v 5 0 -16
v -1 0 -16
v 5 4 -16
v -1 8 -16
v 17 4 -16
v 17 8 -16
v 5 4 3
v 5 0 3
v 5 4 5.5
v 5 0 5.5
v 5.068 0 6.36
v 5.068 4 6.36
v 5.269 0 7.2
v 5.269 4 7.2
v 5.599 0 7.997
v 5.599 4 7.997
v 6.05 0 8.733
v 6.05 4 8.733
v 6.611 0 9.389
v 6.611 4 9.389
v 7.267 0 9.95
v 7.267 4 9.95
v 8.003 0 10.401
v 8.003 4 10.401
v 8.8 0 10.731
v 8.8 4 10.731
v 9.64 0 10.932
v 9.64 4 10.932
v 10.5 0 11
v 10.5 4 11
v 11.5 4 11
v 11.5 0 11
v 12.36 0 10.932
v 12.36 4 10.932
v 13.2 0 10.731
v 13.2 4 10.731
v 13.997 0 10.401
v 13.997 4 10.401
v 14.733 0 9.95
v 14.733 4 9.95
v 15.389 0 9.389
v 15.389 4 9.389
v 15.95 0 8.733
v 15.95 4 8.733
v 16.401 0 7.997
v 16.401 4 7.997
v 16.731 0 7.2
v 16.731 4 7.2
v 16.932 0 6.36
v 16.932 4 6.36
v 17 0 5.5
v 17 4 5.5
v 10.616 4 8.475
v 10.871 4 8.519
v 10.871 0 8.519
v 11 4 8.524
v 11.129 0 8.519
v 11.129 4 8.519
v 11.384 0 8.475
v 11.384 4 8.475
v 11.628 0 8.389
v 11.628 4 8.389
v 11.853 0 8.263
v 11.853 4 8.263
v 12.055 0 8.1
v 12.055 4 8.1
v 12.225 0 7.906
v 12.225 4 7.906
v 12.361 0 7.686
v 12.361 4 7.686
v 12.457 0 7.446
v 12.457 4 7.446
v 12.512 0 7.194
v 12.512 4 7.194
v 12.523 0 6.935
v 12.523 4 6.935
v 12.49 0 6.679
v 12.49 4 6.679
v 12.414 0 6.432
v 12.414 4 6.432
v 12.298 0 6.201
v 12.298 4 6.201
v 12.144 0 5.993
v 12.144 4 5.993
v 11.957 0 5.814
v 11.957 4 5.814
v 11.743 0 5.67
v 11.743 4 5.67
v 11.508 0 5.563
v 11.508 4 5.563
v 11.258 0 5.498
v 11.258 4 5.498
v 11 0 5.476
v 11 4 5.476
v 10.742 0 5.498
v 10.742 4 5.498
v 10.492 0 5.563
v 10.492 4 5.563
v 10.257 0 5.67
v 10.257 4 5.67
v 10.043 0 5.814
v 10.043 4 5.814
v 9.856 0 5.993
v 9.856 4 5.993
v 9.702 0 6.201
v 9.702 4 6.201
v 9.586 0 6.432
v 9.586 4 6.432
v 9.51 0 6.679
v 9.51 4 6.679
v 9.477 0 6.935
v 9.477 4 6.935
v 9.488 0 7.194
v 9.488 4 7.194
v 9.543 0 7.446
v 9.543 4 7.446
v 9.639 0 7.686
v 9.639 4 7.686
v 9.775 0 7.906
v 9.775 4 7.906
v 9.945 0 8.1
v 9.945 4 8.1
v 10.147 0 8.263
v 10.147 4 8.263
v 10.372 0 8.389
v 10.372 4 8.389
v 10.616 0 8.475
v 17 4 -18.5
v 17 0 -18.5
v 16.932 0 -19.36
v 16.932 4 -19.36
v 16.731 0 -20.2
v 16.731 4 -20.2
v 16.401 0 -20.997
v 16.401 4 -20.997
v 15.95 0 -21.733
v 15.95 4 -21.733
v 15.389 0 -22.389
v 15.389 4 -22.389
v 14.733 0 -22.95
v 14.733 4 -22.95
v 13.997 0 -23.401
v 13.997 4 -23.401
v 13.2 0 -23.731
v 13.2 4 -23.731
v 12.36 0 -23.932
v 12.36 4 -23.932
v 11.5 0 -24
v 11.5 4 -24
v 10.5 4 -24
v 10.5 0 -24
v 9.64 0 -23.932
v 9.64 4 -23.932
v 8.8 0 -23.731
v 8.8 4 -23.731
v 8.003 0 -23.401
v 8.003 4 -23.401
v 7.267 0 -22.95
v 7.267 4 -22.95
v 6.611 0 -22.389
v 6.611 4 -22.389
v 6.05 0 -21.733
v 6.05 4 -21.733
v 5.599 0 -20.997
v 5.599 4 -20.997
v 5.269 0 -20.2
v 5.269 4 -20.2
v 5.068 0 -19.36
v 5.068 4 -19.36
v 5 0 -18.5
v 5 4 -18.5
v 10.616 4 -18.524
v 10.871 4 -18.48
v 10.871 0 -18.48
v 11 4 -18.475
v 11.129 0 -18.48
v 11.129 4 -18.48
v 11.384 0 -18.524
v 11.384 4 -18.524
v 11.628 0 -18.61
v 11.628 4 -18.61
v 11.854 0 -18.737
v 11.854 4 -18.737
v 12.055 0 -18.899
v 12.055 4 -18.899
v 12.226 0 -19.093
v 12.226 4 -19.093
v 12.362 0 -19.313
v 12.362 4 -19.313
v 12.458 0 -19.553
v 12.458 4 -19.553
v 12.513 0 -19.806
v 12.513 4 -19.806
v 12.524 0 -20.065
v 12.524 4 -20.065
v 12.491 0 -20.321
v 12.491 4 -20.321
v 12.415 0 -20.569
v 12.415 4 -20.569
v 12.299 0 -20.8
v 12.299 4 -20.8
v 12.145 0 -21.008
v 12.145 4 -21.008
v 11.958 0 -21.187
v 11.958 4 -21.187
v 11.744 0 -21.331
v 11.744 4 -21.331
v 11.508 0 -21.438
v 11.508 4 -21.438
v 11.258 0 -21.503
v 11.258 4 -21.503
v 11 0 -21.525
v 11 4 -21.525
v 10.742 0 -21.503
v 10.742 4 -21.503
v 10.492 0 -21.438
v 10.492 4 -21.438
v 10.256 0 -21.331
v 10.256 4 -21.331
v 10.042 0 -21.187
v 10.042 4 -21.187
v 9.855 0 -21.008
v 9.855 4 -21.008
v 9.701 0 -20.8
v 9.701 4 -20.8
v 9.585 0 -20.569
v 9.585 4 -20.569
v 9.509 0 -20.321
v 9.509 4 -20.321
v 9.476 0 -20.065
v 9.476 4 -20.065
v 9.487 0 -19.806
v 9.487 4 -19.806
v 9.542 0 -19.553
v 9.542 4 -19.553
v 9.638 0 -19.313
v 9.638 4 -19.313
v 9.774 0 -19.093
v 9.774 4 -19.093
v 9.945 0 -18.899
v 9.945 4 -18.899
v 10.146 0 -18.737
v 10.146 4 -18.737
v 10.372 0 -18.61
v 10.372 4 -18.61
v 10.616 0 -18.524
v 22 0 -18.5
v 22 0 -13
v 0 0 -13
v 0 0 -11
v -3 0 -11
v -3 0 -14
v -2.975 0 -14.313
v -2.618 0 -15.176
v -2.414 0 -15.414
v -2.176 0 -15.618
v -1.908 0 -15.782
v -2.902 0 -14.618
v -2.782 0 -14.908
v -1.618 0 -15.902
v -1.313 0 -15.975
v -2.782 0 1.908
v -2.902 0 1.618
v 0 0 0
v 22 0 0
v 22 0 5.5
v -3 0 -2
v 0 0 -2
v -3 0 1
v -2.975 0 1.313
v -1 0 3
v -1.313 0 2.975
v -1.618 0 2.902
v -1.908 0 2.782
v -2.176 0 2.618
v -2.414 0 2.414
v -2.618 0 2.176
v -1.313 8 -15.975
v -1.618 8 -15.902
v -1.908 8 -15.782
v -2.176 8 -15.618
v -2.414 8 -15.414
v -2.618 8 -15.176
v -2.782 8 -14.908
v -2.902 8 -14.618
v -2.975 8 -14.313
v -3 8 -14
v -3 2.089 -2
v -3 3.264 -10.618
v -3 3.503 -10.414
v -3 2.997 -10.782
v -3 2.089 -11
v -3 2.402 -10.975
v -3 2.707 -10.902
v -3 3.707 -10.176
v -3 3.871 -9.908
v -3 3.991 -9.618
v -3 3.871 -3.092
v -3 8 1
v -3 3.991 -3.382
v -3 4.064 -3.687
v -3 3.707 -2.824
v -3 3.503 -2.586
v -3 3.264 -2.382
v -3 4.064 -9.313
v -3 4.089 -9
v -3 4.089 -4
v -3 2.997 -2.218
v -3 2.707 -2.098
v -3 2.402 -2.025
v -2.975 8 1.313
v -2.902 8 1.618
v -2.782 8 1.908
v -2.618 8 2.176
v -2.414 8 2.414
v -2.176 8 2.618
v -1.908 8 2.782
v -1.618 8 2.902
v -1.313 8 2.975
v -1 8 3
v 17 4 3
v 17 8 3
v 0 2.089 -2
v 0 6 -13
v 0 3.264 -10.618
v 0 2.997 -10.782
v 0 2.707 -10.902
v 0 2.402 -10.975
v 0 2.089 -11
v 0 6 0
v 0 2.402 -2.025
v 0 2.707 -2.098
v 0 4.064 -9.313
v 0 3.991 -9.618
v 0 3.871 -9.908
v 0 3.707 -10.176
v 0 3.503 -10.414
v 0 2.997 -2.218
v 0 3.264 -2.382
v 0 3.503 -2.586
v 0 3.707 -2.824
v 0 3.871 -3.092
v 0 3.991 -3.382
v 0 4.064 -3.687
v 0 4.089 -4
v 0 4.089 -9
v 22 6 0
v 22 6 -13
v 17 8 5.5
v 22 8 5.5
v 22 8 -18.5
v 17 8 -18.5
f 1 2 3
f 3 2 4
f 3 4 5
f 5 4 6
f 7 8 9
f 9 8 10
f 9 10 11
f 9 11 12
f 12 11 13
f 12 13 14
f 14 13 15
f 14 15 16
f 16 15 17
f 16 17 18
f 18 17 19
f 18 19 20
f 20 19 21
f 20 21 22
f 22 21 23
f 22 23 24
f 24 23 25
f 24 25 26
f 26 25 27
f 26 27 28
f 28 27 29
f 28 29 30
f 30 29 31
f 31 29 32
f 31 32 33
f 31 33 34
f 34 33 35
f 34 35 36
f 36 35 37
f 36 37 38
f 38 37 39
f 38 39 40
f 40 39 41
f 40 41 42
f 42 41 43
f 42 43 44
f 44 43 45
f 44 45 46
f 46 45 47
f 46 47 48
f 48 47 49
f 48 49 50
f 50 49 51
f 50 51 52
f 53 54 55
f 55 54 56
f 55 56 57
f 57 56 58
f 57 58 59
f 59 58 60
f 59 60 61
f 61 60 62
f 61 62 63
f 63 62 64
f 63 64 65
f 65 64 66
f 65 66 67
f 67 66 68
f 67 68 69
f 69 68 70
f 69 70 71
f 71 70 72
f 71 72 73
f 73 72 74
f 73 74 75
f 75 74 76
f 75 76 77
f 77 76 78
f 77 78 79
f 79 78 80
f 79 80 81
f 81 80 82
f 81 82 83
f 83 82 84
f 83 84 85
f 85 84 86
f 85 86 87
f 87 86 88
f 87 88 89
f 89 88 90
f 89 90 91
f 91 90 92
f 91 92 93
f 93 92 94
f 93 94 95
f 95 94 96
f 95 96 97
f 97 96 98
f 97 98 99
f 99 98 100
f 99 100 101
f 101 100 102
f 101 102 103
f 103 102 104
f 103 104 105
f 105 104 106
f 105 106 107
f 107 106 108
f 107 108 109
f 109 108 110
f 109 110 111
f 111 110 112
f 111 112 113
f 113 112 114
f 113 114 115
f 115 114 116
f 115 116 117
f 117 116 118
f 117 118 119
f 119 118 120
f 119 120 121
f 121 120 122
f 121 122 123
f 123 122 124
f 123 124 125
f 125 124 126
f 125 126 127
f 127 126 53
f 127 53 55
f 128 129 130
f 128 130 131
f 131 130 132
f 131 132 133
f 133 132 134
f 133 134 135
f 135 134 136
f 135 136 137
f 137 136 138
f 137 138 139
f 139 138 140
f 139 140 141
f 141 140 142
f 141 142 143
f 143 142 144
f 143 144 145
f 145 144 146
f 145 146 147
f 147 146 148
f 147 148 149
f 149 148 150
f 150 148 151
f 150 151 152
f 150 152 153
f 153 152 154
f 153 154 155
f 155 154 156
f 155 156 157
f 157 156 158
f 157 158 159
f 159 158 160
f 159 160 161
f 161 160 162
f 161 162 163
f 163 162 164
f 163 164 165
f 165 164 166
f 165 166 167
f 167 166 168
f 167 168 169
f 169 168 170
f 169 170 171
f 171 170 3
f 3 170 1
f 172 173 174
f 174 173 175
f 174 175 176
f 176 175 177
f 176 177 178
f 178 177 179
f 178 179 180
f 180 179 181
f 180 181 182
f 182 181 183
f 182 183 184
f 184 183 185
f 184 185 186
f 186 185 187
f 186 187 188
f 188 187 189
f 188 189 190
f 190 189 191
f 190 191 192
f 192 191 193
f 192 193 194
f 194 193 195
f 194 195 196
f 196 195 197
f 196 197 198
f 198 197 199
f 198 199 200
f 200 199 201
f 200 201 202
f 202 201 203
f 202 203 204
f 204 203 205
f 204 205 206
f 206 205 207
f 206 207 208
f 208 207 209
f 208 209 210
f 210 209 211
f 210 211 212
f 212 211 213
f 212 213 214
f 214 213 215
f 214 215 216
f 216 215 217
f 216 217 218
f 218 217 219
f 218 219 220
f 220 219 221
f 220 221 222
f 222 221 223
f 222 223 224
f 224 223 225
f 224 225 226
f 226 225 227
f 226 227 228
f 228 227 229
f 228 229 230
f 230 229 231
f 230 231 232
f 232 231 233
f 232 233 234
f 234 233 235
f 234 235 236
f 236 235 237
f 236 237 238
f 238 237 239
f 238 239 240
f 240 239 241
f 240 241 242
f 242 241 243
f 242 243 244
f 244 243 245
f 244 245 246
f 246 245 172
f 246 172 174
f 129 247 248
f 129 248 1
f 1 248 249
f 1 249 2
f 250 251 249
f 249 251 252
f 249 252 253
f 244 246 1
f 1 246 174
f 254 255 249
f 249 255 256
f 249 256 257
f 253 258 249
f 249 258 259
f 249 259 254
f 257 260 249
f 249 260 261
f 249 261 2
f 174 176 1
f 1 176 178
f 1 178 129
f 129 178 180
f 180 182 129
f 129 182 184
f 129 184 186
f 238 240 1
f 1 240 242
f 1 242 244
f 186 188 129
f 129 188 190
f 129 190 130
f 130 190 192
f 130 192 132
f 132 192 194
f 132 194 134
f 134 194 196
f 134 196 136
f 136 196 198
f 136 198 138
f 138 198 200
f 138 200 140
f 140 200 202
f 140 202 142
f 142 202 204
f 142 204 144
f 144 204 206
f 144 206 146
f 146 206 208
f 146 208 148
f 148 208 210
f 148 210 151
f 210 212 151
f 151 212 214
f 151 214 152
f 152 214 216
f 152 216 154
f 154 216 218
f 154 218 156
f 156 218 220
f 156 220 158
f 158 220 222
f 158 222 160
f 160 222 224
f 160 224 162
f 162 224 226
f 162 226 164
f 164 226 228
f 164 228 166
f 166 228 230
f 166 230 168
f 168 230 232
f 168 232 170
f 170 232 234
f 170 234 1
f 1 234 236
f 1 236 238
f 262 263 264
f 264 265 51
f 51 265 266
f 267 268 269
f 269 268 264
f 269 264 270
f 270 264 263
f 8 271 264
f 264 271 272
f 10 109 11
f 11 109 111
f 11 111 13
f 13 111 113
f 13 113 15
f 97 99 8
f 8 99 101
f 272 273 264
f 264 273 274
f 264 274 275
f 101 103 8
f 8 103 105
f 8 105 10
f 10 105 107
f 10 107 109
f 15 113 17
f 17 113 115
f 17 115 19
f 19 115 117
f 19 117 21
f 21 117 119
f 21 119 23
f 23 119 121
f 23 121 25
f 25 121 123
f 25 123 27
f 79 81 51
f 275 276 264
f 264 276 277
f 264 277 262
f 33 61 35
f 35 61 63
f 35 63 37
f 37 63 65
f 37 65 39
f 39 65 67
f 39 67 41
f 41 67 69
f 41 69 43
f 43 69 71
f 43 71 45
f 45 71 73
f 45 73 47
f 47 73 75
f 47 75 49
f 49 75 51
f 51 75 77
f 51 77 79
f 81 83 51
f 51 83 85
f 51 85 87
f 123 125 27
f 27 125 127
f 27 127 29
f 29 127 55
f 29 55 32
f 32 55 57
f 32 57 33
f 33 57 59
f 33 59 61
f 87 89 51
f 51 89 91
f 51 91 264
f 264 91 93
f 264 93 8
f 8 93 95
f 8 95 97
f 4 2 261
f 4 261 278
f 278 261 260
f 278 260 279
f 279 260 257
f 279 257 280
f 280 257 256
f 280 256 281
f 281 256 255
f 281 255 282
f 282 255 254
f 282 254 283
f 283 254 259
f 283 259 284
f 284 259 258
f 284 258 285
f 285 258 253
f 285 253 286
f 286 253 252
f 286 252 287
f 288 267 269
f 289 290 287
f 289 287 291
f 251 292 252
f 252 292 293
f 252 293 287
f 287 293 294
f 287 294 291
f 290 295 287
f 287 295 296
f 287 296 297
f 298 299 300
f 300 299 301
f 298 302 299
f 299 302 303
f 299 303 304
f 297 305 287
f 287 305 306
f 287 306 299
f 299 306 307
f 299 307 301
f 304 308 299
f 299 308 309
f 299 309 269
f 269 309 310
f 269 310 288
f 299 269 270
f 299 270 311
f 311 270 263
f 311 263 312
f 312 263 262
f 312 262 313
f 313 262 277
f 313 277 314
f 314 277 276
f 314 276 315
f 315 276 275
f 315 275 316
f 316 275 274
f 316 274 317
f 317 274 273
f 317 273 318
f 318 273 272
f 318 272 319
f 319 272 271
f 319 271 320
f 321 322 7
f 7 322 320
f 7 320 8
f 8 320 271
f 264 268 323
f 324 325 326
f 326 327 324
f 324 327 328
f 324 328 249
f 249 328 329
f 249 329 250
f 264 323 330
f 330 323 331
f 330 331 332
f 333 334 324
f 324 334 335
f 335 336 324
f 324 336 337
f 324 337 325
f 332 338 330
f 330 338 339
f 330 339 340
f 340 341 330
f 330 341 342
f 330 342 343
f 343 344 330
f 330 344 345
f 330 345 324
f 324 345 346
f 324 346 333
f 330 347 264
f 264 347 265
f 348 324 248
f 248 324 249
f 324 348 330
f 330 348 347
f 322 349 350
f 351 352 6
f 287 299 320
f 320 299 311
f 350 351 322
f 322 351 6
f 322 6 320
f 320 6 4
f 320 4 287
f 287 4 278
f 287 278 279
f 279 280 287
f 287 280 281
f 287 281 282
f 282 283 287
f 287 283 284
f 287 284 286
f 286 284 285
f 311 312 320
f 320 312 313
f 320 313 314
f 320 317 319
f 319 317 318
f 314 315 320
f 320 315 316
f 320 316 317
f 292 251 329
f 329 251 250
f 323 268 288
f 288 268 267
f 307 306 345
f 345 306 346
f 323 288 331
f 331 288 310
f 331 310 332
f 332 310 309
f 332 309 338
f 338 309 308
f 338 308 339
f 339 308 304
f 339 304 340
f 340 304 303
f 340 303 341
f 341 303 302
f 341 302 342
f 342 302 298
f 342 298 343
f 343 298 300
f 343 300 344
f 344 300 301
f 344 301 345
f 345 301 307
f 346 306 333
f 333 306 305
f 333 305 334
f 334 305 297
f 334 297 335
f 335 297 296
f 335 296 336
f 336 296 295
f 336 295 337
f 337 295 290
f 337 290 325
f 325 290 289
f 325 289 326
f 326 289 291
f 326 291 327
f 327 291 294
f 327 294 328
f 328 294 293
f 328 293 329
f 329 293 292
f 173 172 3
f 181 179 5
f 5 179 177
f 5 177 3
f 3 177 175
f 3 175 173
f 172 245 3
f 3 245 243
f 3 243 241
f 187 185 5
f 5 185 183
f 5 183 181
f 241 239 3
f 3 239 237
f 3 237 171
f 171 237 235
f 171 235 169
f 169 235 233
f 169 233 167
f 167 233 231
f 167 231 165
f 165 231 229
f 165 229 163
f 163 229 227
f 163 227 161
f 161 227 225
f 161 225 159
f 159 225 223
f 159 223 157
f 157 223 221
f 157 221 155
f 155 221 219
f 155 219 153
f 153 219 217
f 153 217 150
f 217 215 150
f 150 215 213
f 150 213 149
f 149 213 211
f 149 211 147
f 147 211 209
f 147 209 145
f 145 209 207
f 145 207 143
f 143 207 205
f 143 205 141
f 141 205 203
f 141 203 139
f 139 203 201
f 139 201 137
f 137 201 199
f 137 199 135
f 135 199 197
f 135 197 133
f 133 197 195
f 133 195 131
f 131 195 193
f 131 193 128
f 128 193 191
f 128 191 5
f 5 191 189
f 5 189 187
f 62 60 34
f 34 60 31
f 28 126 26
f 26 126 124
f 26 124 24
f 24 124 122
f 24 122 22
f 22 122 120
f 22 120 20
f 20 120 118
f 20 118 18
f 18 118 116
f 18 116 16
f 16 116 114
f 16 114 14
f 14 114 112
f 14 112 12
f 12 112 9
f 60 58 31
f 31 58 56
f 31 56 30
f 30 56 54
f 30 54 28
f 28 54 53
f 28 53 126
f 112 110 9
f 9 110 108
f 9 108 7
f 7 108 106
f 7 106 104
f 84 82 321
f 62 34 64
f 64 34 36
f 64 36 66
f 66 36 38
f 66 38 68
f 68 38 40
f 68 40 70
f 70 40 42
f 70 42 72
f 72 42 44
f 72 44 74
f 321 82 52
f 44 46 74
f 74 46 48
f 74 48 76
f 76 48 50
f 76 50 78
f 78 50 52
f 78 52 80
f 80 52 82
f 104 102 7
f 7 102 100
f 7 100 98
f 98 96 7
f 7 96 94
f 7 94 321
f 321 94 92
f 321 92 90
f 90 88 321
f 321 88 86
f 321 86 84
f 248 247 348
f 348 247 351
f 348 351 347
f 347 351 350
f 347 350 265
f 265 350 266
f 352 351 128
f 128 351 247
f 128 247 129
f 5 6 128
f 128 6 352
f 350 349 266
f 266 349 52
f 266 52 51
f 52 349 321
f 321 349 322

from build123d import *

# Parameters (mm, degrees)
SKETCH1_W           = 22
SKETCH1_H           = 13
BOSS_EXTRUDE1_DEPTH = 6
BOSS_EXTRUDE2_DEPTH = 2
BOSS_EXTRUDE3_DEPTH = 8
SKETCH4_R           = 1.525
SKETCH4_R_2         = 1.524
CUT_EXTRUDE1_DEPTH  = 36.566838488
SKETCH5_W           = 9
SKETCH5_H           = 4.088652256
CUT_EXTRUDE2_DEPTH  = 38.735924528
FILLET1_R           = 2
SKETCH6_W           = 12
SKETCH6_H           = 13.009000019
SKETCH6_W_2         = 15.838286437
CUT_EXTRUDE3_DEPTH  = 4
SKETCH7_W           = 2.5
SKETCH7_H           = 8
BOSS_EXTRUDE5_DEPTH = 3
FILLET3_R           = 2.5
FILLET4_R           = 2.5
SKETCH9_W           = 24
SKETCH9_H           = 8
CUT_EXTRUDE5_DEPTH  = 3
BOSS_EXTRUDE6_REACH = 35.526
SKETCH10_W          = 5
SKETCH10_H          = 2.5


with BuildPart() as part:
    # Sketch1 → Boss-Extrude1 (new body)
    with BuildSketch(Plane(origin=(0, 0, 0), x_dir=(1, 0, 0), z_dir=(0, 1, 0))):
        with BuildLine():
            Line((-1, -3), (23, -3))
            Line((23, -3), (25, -3))
            Line((25, -3), (25, -1))
            Line((25, -1), (25, 14))
            Line((25, 14), (25, 16))
            Line((25, 16), (23, 16))
            Line((23, 16), (-1, 16))
            ThreePointArc((-1, 16), (-2.414213562, 15.414213562), (-3, 14))
            Line((-3, 14), (-3, -1))
            ThreePointArc((-3, -1), (-2.414213562, -2.414213562), (-1, -3))
        make_face()
        with Locations((11, 6.5)):
            Rectangle(SKETCH1_W, SKETCH1_H, mode=Mode.SUBTRACT)
    extrude(amount=BOSS_EXTRUDE1_DEPTH)

    # Sketch2 → Boss-Extrude2 (add)
    with BuildSketch(Plane(origin=(0, 6, 0), x_dir=(1, 0, 0), z_dir=(0, 1, 0))):
        with BuildLine():
            Line((25, 14), (25, -1))
            Line((25, -1), (25, -3))
            Line((25, -3), (23, -3))
            Line((23, -3), (-1, -3))
            ThreePointArc((-1, -3), (-2.414213562, -2.414213562), (-3, -1))
            Line((-3, -1), (-3, 14))
            ThreePointArc((-3, 14), (-2.414213562, 15.414213562), (-1, 16))
            Line((-1, 16), (23, 16))
            Line((23, 16), (25, 16))
            Line((25, 16), (25, 14))
        make_face()
    extrude(amount=BOSS_EXTRUDE2_DEPTH)

    # Sketch3 → Boss-Extrude3 (add)
    with BuildSketch(Plane.XZ):
        with BuildLine():
            Line((5, 3), (17, 3))
            Line((17, 3), (17, 5.5))
            ThreePointArc((17, 5.5), (15.389087297, 9.389087297), (11.5, 11))
            Line((11.5, 11), (10.5, 11))
            ThreePointArc((10.5, 11), (6.610912703, 9.389087297), (5, 5.5))
            Line((5, 5.5), (5, 3))
        make_face()
        with BuildLine():
            Line((17, -16), (5, -16))
            Line((5, -16), (5, -18.5))
            ThreePointArc((5, -18.5), (6.610912703, -22.389087297), (10.5, -24))
            Line((10.5, -24), (11.5, -24))
            ThreePointArc((11.5, -24), (15.389087297, -22.389087297), (17, -18.5))
            Line((17, -18.5), (17, -16))
        make_face()
    extrude(amount=-BOSS_EXTRUDE3_DEPTH)

    # Sketch4 → Cut-Extrude1 (cut, through all)
    with BuildSketch(Plane(origin=(0, 0, 0), x_dir=(-1, 0, 0), z_dir=(0, -1, 0))):
        with Locations(Location((-11, 20, 0), (0, 0, 90))):
            Circle(SKETCH4_R)
        with Locations(Location((-11, -7, 0), (0, 0, 90))):
            Circle(SKETCH4_R_2)
    extrude(amount=-CUT_EXTRUDE1_DEPTH, mode=Mode.SUBTRACT)

    # Sketch5 → Cut-Extrude2 (cut, through all)
    with BuildSketch(Plane(origin=(25, 0, 0), x_dir=(0, 0, -1), z_dir=(1, 0, 0))):
        with Locations((6.5, 2.044326128)):
            Rectangle(SKETCH5_W, SKETCH5_H)
    extrude(amount=-CUT_EXTRUDE2_DEPTH, mode=Mode.SUBTRACT)

    # Fillet1
    fillet1_edges = [part.edges().sort_by_distance(p)[0] for p in [
        (-1.5, 4.088652256, -11),
        (-1.5, 4.088652256, -2),
        (23.5, 4.088652256, -11),
        (23.5, 4.088652256, -2),
    ]]
    fillet(fillet1_edges, radius=FILLET1_R)

    # Sketch6 → Cut-Extrude3 (cut)
    with BuildSketch(Plane(origin=(0, 8, 0), x_dir=(1, 0, 0), z_dir=(0, 1, 0))):
        with Locations((11, 22.504500009)):
            Rectangle(SKETCH6_W, SKETCH6_H)
        with Locations((11.149066226, -9.50450001)):
            Rectangle(SKETCH6_W_2, SKETCH6_H)
    extrude(amount=-CUT_EXTRUDE3_DEPTH, mode=Mode.SUBTRACT)

    # Sketch7 → Boss-Extrude5 (add)
    with BuildSketch(Plane(origin=(25, 0, 0), x_dir=(0, 0, -1), z_dir=(1, 0, 0))):
        with Locations((17.25, 4)):
            Rectangle(SKETCH7_W, SKETCH7_H)
        with Locations((-4.25, 4)):
            Rectangle(SKETCH7_W, SKETCH7_H)
    extrude(amount=-BOSS_EXTRUDE5_DEPTH)

    # Fillet3
    fillet3_edges = [part.edges().sort_by_distance(p)[0] for p in [
        (22, 4, -16),
    ]]
    fillet(fillet3_edges, radius=FILLET3_R - 0.0001)  # a hair under: the kernel refuses the full size

    # Fillet4
    fillet4_edges = [part.edges().sort_by_distance(p)[0] for p in [
        (22, 4, 3),
    ]]
    fillet(fillet4_edges, radius=FILLET4_R - 0.0001)  # a hair under: the kernel refuses the full size

    # Sketch9 → Cut-Extrude5 (cut)
    with BuildSketch(Plane(origin=(25, 0, 0), x_dir=(0, 0, -1), z_dir=(1, 0, 0))):
        with Locations((6.5, 4)):
            Rectangle(SKETCH9_W, SKETCH9_H)
    extrude(amount=-CUT_EXTRUDE5_DEPTH, mode=Mode.SUBTRACT)

    # Boss-Extrude6: up to this face of the body (flat: up to its plane)
    boss_extrude6_end = Plane(part.part.faces().sort_by_distance((9.97036164, 0, 3.836684907))[0])
    # Sketch10 → Boss-Extrude6 (add, up to the picked face)
    with BuildSketch(Plane(origin=(0, 8, 0), x_dir=(1, 0, 0), z_dir=(0, 1, 0)), mode=Mode.PRIVATE) as boss_extrude6_sk1:
        with Locations((19.5, 17.25)):
            Rectangle(SKETCH10_W, SKETCH10_H)
    boss_extrude6_tool1 = split(extrude(boss_extrude6_sk1.sketch, amount=-BOSS_EXTRUDE6_REACH, mode=Mode.PRIVATE), bisect_by=boss_extrude6_end, keep=Keep.BOTH, mode=Mode.PRIVATE)
    # Sketch10 → Boss-Extrude6 (add, up to the picked face)
    with BuildSketch(Plane(origin=(0, 8, 0), x_dir=(1, 0, 0), z_dir=(0, 1, 0)), mode=Mode.PRIVATE) as boss_extrude6_sk2:
        with Locations((19.5, -4.25)):
            Rectangle(SKETCH10_W, SKETCH10_H)
    boss_extrude6_tool2 = split(extrude(boss_extrude6_sk2.sketch, amount=-BOSS_EXTRUDE6_REACH, mode=Mode.PRIVATE), bisect_by=boss_extrude6_end, keep=Keep.BOTH, mode=Mode.PRIVATE)
    add(boss_extrude6_tool1.solids().sort_by(Axis((19.5, 8, -17.25), (0, -1, 0)))[0])
    add(boss_extrude6_tool2.solids().sort_by(Axis((19.5, 8, 4.25), (0, -1, 0)))[0])


solid = part.part
